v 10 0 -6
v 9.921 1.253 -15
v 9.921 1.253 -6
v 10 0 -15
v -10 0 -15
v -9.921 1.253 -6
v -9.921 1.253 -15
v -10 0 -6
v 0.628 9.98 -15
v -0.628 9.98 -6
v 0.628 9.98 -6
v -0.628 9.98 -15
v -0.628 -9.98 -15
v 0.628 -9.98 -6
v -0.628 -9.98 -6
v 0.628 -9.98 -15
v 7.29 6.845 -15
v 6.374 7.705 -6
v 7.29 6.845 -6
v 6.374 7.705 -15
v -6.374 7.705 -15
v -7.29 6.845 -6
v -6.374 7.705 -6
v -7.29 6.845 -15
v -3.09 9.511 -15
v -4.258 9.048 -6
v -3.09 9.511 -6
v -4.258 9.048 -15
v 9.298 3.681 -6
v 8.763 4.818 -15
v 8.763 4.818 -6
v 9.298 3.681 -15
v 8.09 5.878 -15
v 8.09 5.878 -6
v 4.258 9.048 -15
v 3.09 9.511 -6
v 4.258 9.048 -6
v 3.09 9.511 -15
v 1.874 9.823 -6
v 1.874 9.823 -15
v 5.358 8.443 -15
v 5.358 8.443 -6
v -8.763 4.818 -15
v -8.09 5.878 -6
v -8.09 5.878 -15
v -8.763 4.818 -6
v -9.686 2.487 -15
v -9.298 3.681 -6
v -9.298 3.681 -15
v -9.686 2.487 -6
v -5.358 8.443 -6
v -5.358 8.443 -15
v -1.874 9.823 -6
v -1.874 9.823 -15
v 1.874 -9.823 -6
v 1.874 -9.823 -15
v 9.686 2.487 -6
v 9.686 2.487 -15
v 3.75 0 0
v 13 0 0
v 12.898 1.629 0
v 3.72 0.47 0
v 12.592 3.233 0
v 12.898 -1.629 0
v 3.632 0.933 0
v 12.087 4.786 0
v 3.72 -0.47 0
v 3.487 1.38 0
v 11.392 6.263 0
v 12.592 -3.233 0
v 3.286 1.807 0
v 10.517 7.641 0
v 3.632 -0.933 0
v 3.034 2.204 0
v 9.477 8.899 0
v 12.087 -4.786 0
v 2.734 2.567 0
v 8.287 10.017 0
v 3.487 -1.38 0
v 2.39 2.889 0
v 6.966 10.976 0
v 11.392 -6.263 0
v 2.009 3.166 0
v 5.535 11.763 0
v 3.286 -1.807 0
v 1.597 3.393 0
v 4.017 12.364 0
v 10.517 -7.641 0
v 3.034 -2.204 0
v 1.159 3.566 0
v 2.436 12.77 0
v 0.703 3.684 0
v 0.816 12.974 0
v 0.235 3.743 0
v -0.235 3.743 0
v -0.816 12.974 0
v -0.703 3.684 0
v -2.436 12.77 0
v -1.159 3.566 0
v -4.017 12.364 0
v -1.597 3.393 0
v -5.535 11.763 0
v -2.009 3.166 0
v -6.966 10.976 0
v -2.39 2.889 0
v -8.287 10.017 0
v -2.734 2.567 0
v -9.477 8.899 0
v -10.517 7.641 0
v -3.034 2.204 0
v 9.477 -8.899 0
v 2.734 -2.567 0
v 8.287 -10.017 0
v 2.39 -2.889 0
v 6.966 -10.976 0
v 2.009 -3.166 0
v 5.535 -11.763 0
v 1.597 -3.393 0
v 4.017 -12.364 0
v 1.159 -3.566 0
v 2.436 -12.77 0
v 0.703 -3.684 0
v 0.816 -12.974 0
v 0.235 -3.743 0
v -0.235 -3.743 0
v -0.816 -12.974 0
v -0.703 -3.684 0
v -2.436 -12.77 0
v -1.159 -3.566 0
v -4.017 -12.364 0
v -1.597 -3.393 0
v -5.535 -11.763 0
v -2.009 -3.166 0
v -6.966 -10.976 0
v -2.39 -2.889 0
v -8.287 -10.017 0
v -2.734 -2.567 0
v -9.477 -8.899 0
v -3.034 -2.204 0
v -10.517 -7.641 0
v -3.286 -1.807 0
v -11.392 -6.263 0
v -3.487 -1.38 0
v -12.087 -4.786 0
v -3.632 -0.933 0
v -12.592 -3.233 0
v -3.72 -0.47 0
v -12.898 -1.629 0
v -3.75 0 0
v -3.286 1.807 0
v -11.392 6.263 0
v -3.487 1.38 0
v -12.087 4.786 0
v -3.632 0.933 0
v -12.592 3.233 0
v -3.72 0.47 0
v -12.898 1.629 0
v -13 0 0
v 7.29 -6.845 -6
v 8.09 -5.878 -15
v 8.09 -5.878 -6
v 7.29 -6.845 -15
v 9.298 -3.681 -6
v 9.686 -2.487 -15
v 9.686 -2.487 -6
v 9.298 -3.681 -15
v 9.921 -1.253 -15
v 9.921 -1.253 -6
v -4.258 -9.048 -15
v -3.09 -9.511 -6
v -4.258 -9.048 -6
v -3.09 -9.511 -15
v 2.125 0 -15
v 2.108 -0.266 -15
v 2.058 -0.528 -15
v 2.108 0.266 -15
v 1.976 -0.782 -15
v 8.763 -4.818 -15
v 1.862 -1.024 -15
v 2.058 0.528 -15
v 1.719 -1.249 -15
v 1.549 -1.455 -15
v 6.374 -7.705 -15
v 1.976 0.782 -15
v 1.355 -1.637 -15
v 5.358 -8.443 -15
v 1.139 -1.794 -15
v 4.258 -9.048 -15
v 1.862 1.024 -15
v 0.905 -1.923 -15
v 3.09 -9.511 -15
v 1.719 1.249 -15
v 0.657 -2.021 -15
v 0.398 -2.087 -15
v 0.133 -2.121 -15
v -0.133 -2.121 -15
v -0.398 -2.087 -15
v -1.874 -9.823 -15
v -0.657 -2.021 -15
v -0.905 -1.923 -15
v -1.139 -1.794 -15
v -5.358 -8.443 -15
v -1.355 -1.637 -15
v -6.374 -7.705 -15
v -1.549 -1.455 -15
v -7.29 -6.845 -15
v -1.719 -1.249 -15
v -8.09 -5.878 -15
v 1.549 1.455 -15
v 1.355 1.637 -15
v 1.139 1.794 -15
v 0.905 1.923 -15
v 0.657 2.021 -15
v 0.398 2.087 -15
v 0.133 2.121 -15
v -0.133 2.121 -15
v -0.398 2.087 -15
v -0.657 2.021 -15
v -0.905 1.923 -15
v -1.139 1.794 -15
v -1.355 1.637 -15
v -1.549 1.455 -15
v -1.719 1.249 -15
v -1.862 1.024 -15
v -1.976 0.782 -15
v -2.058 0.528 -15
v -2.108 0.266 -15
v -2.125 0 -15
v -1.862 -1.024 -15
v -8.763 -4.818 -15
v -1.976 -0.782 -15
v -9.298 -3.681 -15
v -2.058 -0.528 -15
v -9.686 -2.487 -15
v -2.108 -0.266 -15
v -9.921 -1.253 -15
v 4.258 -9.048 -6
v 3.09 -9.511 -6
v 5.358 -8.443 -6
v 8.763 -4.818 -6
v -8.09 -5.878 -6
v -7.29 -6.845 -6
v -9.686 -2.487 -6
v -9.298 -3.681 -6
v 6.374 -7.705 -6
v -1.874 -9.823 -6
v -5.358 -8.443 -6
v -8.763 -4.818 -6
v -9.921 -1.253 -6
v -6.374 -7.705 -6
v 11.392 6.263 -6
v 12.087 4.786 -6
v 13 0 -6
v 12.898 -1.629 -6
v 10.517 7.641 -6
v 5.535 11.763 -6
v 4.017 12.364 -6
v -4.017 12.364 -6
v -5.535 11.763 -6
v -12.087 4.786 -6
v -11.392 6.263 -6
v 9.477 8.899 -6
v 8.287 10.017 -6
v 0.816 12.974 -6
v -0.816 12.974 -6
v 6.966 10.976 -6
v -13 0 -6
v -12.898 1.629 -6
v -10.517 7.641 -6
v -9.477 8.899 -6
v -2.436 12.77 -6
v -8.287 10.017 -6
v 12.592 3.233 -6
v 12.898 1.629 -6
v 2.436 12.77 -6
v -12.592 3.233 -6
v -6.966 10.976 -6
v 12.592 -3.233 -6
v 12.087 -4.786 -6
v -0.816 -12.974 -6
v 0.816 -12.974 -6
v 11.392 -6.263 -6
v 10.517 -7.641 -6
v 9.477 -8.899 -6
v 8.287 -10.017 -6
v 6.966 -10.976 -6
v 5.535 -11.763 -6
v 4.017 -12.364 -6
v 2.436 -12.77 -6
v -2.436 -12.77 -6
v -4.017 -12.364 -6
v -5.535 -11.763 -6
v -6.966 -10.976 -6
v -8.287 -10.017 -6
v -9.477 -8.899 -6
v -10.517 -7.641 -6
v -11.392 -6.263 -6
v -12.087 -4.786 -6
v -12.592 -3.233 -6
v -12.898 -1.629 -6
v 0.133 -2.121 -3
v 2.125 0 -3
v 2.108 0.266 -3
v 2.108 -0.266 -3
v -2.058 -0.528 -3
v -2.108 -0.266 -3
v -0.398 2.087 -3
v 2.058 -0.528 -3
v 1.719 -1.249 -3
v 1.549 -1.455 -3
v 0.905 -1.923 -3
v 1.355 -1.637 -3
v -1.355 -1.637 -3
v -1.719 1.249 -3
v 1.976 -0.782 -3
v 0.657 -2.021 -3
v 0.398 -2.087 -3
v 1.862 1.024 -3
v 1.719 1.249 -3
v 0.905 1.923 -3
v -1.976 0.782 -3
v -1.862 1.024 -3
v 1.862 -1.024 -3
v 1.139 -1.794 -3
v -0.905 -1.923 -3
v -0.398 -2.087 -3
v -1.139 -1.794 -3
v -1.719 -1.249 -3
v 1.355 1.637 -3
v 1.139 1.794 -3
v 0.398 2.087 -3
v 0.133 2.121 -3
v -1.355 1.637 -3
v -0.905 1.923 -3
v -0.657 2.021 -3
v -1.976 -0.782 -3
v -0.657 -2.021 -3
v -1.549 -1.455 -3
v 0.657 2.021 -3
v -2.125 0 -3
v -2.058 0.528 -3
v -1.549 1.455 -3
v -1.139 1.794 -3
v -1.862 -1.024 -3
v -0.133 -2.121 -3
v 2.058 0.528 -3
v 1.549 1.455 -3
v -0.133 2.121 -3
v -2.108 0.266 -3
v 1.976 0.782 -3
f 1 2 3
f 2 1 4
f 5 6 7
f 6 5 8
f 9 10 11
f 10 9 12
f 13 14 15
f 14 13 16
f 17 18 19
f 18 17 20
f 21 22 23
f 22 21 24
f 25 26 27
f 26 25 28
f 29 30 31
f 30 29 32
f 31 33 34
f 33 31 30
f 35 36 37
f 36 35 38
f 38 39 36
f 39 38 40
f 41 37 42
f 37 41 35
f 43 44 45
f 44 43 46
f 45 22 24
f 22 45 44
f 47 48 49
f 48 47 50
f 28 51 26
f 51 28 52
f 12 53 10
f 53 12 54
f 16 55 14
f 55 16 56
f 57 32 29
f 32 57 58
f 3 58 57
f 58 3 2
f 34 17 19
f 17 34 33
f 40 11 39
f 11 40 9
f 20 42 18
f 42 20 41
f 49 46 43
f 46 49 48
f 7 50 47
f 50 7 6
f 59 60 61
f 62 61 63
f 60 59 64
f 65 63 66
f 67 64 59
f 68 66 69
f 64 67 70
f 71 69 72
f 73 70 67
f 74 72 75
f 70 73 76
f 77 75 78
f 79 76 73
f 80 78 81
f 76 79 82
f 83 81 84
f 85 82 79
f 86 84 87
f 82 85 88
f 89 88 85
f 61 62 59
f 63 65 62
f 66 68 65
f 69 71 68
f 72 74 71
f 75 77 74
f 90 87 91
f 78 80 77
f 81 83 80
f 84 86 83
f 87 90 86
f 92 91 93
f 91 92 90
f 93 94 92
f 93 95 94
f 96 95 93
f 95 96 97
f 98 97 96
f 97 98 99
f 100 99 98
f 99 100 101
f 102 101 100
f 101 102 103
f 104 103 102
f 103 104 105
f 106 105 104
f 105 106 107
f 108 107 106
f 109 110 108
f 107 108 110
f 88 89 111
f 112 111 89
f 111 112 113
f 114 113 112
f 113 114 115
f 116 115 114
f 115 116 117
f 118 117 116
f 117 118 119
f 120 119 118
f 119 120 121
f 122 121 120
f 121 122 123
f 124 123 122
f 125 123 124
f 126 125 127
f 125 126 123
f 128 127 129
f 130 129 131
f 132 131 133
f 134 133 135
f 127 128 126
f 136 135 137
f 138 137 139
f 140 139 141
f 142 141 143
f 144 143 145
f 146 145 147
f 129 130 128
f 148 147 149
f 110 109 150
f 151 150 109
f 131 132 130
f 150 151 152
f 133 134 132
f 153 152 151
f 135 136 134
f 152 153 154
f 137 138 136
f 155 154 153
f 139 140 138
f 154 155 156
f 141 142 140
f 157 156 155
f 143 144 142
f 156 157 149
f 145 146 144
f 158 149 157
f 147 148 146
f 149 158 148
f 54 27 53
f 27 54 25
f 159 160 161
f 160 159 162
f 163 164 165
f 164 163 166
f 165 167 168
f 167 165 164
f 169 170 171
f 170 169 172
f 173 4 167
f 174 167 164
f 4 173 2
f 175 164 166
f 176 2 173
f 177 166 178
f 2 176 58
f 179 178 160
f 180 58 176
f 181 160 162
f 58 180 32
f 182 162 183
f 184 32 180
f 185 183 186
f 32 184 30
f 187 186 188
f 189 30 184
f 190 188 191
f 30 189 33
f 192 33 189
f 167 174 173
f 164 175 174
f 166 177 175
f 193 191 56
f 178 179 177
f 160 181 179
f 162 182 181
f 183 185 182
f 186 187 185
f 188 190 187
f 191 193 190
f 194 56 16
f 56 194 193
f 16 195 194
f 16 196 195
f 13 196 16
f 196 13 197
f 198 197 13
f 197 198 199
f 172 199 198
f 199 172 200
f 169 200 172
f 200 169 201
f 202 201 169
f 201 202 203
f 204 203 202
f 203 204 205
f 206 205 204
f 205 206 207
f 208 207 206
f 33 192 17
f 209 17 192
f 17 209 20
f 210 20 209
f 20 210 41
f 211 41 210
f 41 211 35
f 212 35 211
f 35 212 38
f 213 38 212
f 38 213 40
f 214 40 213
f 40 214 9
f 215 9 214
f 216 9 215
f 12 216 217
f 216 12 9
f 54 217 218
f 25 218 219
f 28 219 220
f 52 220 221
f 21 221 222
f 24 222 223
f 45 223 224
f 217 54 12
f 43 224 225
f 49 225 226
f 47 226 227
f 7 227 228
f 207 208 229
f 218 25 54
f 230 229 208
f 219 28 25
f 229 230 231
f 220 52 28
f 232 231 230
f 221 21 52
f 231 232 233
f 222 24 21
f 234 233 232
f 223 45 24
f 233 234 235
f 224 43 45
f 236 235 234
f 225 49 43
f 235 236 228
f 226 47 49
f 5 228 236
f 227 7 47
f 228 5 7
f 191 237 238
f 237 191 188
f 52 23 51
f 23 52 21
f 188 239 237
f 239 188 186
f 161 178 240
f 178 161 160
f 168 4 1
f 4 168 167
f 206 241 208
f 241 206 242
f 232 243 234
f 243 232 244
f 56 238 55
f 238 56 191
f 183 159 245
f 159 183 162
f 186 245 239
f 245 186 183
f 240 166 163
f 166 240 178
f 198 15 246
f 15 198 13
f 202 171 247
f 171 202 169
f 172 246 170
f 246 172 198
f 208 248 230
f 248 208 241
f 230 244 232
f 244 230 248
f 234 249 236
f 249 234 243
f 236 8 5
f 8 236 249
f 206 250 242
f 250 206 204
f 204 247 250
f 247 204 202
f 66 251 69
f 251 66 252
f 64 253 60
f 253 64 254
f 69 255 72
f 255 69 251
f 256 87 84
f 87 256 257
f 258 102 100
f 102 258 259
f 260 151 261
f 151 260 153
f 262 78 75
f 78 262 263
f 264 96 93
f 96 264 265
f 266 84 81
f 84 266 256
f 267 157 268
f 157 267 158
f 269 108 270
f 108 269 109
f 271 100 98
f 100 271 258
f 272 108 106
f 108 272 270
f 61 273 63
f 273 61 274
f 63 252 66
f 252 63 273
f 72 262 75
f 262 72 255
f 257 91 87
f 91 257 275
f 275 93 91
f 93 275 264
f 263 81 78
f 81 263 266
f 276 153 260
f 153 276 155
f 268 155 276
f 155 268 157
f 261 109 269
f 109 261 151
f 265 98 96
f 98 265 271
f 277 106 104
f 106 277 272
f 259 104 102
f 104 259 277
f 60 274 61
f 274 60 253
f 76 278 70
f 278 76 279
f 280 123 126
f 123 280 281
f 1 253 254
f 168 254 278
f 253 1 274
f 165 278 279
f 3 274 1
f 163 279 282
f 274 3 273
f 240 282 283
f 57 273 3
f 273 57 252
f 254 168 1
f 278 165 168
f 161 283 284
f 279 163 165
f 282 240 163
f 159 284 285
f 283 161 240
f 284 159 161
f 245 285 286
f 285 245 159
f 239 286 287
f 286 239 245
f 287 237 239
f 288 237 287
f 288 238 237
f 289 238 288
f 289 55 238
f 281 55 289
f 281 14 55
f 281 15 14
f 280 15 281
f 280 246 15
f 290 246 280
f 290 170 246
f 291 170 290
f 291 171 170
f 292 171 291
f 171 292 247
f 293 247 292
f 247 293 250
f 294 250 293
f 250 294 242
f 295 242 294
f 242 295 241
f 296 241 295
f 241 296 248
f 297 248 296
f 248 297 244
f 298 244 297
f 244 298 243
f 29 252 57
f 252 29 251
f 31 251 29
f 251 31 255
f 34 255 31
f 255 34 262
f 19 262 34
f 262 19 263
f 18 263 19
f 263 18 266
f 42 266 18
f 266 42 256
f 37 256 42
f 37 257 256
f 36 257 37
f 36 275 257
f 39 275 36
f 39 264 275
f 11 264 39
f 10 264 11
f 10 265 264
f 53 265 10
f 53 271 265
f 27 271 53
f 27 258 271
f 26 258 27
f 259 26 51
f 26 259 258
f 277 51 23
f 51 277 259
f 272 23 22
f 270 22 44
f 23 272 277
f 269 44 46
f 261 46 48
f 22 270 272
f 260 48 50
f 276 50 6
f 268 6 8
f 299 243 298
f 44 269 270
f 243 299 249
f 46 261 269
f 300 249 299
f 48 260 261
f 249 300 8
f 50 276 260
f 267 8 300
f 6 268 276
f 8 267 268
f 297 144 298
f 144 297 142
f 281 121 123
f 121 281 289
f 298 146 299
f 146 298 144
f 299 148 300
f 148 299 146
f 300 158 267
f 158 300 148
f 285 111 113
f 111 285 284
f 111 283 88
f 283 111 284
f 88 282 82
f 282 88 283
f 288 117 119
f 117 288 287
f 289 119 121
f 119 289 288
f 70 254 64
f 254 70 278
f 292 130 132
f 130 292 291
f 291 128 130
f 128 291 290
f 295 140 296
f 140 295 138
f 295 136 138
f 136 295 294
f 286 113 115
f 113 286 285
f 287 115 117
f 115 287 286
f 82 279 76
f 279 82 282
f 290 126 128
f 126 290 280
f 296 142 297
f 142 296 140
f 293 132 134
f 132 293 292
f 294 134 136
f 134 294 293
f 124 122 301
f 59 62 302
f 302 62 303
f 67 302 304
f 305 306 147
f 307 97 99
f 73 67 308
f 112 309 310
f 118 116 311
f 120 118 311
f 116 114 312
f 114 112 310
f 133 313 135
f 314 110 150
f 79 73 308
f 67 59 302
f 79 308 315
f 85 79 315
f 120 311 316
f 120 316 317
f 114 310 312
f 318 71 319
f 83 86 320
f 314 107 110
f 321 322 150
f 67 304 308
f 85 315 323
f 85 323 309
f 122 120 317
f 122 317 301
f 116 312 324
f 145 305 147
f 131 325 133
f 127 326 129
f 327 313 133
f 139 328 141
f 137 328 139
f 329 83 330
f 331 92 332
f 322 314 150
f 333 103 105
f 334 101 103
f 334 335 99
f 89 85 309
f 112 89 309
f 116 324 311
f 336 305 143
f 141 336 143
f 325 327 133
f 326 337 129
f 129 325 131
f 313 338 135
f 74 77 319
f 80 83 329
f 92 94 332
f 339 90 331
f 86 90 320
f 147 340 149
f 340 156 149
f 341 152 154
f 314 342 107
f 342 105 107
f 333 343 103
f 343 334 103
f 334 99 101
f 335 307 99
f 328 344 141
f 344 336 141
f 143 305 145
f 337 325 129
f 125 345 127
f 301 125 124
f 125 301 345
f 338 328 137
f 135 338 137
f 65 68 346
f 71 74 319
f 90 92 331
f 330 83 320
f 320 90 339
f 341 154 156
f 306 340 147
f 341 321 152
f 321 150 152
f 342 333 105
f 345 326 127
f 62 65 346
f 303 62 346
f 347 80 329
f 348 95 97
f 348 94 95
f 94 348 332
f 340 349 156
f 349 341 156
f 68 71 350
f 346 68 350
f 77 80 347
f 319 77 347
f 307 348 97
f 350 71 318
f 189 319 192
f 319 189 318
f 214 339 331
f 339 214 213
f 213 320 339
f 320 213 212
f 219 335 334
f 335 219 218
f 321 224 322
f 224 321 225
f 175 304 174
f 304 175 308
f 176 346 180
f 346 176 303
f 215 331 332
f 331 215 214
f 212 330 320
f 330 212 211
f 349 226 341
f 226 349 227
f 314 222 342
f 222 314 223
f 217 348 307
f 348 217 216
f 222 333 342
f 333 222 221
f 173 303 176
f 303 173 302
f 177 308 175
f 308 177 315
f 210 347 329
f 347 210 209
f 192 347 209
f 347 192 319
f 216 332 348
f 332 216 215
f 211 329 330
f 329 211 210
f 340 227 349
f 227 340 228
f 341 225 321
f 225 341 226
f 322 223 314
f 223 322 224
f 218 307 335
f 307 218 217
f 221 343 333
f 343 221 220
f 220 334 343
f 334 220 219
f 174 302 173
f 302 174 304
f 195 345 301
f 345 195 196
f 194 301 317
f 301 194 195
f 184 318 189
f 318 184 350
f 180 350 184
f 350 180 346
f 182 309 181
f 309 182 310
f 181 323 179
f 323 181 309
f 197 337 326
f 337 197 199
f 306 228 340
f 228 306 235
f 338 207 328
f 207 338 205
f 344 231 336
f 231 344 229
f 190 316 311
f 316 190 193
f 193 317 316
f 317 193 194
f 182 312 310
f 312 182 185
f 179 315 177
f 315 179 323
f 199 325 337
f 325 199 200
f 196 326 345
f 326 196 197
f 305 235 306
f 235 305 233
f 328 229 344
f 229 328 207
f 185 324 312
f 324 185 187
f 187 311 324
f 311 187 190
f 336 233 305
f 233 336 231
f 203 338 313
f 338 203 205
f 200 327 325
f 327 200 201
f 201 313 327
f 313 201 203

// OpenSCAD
$fn = 50;


difference() {
	union() {
		translate(v = [0, 0, -15.0000000000]) {
			cylinder(h = 15, r = 10.0000000000);
		}
		translate(v = [0, 0, -6.0000000000]) {
			cylinder(h = 6, r = 13.0000000000);
		}
	}
	union() {
		translate(v = [0, 0, 0]) {
			rotate(a = [0, 0, 0]) {
				difference() {
					union() {
						#translate(v = [0, 0, -15.0000000000]) {
							cylinder(h = 15, r = 2.0000000000);
						}
						#translate(v = [0, 0, -3]) {
							cylinder(h = 3, r = 10.0000000000, r1 = 2.1250000000, r2 = 3.7500000000);
						}
						#translate(v = [0, 0, -15.0000000000]) {
							cylinder(h = 15, r = 2.1250000000);
						}
						#translate(v = [0, 0, -15.0000000000]) {
							cylinder(h = 15, r = 2.0000000000);
						}
					}
					union();
				}
			}
		}
	}
}
